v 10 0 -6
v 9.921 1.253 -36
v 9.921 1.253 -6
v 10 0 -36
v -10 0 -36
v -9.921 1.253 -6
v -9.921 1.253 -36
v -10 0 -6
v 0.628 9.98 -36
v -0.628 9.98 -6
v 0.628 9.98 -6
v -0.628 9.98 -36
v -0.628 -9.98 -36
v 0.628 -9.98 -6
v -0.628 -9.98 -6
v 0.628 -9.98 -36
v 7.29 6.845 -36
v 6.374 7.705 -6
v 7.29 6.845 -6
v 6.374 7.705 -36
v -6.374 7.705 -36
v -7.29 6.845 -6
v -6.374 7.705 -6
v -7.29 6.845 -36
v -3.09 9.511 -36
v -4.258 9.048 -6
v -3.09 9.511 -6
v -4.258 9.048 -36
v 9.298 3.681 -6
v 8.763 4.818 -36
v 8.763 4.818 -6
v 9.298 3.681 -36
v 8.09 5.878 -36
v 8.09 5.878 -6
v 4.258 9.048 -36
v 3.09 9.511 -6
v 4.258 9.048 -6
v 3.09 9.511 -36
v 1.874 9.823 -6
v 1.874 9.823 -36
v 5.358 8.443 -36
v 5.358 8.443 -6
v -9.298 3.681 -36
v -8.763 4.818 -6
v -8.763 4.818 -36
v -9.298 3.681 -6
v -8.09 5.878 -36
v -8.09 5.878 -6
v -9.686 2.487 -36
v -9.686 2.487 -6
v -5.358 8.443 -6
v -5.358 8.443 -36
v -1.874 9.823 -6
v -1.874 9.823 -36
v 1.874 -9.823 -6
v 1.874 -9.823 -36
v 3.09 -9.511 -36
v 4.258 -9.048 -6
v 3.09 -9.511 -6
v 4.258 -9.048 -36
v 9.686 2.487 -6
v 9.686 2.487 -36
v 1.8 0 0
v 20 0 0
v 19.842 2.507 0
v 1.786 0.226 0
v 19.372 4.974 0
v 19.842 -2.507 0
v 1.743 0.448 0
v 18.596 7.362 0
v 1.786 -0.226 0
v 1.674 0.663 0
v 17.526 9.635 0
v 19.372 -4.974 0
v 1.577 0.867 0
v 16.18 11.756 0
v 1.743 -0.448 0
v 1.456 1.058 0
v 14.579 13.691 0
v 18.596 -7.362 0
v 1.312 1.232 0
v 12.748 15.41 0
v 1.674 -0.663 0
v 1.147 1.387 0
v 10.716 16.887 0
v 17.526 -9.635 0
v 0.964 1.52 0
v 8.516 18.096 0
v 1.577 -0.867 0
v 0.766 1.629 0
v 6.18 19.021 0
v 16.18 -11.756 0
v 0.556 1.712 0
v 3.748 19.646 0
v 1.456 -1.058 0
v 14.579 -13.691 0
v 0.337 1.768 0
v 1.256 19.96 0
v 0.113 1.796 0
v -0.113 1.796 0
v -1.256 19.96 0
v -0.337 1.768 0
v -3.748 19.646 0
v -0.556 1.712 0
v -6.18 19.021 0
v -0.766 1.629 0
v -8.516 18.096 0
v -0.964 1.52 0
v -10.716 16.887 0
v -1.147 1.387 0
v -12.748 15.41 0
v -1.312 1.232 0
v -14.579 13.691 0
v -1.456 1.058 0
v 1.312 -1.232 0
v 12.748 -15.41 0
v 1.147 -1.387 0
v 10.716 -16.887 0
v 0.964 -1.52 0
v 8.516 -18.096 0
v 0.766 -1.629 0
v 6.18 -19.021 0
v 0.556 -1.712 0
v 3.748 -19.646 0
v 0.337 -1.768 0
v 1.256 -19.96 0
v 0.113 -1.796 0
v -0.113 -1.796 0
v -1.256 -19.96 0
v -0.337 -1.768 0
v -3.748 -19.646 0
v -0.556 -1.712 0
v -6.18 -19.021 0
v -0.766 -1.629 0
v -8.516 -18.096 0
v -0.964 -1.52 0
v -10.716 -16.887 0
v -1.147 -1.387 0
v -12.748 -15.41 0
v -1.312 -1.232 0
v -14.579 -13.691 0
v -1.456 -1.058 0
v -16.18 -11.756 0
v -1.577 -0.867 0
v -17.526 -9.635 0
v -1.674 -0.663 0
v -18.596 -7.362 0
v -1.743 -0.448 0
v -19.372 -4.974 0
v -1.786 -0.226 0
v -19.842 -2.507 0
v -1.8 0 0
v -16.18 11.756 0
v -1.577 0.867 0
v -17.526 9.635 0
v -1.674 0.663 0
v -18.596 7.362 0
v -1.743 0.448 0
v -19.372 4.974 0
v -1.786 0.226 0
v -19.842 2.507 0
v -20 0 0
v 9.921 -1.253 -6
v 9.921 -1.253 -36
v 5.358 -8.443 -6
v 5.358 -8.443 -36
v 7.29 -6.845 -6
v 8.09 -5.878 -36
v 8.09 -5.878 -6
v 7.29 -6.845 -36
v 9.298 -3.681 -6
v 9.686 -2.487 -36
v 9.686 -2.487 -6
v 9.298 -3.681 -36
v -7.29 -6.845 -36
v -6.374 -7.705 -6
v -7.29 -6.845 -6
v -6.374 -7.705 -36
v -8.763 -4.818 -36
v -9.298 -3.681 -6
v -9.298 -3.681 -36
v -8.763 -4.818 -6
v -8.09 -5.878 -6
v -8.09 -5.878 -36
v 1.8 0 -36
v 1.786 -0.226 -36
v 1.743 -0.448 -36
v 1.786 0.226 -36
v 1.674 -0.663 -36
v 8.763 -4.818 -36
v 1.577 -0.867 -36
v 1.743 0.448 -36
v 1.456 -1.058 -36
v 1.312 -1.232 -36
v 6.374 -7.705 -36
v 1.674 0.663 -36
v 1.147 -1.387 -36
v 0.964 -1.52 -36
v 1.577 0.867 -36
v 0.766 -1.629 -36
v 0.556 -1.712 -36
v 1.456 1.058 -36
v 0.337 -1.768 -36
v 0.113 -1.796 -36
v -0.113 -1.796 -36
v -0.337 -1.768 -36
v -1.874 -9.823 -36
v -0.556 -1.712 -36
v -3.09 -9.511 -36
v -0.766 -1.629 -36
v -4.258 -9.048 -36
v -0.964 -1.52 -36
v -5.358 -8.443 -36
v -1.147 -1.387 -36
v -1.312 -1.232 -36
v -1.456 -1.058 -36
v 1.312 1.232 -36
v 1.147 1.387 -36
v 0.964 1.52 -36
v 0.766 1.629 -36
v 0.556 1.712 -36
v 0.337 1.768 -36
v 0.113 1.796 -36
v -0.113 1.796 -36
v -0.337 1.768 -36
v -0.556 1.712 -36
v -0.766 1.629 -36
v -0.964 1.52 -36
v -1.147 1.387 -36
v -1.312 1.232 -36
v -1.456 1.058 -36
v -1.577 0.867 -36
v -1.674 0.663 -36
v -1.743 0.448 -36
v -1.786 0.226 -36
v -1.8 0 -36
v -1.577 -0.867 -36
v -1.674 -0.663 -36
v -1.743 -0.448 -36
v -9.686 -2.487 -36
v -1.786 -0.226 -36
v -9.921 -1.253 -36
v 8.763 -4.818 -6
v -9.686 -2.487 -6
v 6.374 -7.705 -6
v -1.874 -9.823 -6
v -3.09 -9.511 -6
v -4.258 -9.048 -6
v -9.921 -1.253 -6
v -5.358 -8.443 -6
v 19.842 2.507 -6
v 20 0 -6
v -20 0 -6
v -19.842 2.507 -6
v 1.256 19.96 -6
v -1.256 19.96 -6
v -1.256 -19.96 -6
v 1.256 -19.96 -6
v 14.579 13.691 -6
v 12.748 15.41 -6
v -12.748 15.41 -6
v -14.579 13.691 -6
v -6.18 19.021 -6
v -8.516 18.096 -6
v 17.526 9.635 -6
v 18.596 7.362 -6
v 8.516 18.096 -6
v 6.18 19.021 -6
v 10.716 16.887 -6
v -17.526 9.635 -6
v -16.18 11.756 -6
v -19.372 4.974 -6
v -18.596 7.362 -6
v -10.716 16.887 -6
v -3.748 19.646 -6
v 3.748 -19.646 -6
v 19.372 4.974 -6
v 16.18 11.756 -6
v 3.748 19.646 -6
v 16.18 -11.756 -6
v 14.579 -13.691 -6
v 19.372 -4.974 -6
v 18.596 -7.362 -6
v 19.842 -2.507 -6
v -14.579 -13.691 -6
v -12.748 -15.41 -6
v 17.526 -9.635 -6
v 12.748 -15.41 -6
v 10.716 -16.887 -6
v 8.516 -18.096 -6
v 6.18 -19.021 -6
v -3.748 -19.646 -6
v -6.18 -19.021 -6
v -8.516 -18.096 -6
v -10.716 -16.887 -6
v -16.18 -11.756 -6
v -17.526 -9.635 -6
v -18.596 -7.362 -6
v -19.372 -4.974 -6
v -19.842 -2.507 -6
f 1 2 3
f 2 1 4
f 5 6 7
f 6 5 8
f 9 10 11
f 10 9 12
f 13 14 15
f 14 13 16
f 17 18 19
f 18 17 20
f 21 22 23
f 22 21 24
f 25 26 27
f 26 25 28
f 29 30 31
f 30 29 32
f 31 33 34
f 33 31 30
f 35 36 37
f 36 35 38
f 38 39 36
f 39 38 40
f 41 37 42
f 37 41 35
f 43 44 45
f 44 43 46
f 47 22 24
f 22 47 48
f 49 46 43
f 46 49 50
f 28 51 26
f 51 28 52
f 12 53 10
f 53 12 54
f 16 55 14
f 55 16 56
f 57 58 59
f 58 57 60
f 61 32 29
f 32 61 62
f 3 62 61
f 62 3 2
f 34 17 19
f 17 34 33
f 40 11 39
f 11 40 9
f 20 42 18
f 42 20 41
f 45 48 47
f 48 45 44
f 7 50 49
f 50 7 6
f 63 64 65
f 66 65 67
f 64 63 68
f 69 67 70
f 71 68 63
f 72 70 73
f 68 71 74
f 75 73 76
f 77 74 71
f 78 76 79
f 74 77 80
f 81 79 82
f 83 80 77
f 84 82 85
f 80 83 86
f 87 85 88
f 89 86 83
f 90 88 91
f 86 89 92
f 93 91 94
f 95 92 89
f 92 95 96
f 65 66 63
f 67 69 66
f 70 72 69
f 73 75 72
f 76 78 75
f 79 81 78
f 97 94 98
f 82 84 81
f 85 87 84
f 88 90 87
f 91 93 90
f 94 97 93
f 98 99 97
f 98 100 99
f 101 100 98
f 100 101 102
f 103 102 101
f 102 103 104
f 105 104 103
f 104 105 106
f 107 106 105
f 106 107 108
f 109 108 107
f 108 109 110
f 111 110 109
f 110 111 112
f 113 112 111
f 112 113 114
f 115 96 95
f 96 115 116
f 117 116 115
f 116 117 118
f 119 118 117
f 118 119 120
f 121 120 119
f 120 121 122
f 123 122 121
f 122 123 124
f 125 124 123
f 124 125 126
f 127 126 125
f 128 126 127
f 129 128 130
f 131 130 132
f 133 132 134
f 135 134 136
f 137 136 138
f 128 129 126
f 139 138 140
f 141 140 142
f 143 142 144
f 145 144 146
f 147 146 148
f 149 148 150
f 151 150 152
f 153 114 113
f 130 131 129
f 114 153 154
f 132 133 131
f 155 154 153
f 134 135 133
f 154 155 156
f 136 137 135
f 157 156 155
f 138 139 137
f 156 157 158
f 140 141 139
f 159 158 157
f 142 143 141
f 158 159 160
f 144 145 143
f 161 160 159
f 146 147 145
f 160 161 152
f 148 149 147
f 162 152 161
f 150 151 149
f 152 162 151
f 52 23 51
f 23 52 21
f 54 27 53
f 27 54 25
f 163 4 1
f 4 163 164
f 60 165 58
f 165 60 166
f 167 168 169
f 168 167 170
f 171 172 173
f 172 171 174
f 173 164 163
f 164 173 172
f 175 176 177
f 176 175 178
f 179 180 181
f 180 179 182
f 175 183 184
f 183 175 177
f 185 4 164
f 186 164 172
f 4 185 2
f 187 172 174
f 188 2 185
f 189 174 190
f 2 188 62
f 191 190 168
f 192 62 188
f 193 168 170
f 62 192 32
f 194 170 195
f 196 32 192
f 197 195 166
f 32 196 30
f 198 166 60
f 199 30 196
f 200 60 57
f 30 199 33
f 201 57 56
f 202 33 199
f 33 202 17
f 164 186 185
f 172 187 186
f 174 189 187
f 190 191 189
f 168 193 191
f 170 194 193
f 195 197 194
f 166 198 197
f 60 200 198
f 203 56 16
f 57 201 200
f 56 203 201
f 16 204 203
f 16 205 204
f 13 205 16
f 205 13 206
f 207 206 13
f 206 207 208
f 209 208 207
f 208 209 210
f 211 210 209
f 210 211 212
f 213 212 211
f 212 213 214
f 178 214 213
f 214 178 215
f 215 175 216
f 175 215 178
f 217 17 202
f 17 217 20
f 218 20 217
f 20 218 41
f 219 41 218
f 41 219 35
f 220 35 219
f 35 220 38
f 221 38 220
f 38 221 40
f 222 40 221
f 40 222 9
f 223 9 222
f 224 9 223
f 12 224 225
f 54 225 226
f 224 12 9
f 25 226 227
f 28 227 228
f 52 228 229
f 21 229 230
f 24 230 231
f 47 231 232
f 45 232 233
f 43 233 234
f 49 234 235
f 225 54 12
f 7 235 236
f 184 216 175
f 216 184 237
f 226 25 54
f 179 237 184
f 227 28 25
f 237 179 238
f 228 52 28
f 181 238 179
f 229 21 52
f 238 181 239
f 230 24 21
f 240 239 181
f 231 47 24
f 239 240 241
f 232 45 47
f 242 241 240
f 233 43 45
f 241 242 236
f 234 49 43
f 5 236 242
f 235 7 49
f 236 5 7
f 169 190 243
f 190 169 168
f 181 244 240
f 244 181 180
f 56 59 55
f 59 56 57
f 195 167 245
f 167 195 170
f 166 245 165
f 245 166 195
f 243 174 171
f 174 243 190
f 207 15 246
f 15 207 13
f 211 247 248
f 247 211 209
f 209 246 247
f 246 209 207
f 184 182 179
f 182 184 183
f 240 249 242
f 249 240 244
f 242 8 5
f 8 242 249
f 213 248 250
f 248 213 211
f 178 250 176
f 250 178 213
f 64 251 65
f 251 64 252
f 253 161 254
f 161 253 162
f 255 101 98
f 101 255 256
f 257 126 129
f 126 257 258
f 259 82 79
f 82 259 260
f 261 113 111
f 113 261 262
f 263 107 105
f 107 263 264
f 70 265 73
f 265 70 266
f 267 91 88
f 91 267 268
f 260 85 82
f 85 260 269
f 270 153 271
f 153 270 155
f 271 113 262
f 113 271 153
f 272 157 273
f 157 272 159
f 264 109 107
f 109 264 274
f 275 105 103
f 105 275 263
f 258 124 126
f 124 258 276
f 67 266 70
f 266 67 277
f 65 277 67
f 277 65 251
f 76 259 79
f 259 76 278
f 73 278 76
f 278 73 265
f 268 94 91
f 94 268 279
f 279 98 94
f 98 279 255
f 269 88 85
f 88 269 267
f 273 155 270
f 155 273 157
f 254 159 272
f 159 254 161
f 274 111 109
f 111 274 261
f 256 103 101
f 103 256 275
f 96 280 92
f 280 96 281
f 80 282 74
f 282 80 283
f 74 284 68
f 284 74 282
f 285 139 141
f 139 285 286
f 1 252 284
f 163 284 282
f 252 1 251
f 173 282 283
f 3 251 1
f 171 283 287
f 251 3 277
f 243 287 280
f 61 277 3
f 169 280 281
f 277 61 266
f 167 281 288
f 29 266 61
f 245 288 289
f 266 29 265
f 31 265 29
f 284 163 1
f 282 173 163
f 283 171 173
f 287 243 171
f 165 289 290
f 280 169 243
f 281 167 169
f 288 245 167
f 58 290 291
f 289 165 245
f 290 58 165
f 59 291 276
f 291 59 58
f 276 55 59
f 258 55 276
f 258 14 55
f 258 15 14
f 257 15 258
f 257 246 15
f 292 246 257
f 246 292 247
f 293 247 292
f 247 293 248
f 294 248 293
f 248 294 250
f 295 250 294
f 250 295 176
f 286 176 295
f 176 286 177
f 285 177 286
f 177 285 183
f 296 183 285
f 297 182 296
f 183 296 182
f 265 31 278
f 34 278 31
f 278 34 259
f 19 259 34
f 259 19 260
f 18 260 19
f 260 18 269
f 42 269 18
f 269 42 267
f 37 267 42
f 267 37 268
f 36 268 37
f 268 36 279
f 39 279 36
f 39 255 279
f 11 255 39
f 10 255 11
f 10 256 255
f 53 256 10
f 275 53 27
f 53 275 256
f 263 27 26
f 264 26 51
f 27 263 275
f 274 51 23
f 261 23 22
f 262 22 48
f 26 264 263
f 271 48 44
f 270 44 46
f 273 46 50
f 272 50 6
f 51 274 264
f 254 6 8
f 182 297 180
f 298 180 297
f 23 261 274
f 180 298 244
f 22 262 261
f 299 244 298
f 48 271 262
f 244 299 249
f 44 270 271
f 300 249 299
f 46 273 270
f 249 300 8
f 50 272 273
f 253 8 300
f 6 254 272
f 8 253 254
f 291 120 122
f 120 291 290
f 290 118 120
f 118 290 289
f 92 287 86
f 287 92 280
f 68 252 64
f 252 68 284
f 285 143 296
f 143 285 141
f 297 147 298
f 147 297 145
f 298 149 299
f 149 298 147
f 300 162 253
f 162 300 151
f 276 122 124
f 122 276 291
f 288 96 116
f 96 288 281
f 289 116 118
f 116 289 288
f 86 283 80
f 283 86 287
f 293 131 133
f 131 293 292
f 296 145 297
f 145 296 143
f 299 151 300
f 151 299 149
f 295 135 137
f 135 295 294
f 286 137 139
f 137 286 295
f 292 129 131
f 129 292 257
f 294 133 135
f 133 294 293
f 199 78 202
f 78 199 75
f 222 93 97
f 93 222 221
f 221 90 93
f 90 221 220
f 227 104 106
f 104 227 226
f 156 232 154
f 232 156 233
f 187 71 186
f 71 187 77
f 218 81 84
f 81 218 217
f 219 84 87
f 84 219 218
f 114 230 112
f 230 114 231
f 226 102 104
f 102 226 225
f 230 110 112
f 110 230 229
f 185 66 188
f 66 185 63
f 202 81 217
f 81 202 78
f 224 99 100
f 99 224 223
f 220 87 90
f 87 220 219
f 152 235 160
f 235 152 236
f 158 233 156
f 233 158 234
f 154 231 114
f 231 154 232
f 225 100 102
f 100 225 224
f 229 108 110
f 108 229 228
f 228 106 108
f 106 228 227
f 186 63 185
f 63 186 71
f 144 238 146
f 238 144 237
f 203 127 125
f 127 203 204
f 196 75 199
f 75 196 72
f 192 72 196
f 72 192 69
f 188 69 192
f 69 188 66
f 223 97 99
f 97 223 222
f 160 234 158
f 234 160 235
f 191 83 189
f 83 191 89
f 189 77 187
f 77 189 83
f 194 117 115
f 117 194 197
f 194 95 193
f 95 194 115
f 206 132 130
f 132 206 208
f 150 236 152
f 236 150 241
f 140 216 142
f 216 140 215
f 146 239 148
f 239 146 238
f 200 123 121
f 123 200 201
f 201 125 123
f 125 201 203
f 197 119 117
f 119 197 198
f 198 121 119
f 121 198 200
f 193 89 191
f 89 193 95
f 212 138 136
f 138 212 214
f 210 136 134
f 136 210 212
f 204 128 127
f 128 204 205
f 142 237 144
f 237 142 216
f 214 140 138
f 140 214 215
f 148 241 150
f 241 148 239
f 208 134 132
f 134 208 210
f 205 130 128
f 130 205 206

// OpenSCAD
$fn = 50;


difference() {
	union() {
		translate(v = [0, 0, -36.0000000000]) {
			cylinder(h = 36, r = 10.0000000000);
		}
		translate(v = [0, 0, -6.0000000000]) {
			cylinder(h = 6, r = 20.0000000000);
		}
	}
	union() {
		#translate(v = [0, 0, -36]) {
			cylinder(h = 36, r = 1.8000000000);
		}
	}
}
